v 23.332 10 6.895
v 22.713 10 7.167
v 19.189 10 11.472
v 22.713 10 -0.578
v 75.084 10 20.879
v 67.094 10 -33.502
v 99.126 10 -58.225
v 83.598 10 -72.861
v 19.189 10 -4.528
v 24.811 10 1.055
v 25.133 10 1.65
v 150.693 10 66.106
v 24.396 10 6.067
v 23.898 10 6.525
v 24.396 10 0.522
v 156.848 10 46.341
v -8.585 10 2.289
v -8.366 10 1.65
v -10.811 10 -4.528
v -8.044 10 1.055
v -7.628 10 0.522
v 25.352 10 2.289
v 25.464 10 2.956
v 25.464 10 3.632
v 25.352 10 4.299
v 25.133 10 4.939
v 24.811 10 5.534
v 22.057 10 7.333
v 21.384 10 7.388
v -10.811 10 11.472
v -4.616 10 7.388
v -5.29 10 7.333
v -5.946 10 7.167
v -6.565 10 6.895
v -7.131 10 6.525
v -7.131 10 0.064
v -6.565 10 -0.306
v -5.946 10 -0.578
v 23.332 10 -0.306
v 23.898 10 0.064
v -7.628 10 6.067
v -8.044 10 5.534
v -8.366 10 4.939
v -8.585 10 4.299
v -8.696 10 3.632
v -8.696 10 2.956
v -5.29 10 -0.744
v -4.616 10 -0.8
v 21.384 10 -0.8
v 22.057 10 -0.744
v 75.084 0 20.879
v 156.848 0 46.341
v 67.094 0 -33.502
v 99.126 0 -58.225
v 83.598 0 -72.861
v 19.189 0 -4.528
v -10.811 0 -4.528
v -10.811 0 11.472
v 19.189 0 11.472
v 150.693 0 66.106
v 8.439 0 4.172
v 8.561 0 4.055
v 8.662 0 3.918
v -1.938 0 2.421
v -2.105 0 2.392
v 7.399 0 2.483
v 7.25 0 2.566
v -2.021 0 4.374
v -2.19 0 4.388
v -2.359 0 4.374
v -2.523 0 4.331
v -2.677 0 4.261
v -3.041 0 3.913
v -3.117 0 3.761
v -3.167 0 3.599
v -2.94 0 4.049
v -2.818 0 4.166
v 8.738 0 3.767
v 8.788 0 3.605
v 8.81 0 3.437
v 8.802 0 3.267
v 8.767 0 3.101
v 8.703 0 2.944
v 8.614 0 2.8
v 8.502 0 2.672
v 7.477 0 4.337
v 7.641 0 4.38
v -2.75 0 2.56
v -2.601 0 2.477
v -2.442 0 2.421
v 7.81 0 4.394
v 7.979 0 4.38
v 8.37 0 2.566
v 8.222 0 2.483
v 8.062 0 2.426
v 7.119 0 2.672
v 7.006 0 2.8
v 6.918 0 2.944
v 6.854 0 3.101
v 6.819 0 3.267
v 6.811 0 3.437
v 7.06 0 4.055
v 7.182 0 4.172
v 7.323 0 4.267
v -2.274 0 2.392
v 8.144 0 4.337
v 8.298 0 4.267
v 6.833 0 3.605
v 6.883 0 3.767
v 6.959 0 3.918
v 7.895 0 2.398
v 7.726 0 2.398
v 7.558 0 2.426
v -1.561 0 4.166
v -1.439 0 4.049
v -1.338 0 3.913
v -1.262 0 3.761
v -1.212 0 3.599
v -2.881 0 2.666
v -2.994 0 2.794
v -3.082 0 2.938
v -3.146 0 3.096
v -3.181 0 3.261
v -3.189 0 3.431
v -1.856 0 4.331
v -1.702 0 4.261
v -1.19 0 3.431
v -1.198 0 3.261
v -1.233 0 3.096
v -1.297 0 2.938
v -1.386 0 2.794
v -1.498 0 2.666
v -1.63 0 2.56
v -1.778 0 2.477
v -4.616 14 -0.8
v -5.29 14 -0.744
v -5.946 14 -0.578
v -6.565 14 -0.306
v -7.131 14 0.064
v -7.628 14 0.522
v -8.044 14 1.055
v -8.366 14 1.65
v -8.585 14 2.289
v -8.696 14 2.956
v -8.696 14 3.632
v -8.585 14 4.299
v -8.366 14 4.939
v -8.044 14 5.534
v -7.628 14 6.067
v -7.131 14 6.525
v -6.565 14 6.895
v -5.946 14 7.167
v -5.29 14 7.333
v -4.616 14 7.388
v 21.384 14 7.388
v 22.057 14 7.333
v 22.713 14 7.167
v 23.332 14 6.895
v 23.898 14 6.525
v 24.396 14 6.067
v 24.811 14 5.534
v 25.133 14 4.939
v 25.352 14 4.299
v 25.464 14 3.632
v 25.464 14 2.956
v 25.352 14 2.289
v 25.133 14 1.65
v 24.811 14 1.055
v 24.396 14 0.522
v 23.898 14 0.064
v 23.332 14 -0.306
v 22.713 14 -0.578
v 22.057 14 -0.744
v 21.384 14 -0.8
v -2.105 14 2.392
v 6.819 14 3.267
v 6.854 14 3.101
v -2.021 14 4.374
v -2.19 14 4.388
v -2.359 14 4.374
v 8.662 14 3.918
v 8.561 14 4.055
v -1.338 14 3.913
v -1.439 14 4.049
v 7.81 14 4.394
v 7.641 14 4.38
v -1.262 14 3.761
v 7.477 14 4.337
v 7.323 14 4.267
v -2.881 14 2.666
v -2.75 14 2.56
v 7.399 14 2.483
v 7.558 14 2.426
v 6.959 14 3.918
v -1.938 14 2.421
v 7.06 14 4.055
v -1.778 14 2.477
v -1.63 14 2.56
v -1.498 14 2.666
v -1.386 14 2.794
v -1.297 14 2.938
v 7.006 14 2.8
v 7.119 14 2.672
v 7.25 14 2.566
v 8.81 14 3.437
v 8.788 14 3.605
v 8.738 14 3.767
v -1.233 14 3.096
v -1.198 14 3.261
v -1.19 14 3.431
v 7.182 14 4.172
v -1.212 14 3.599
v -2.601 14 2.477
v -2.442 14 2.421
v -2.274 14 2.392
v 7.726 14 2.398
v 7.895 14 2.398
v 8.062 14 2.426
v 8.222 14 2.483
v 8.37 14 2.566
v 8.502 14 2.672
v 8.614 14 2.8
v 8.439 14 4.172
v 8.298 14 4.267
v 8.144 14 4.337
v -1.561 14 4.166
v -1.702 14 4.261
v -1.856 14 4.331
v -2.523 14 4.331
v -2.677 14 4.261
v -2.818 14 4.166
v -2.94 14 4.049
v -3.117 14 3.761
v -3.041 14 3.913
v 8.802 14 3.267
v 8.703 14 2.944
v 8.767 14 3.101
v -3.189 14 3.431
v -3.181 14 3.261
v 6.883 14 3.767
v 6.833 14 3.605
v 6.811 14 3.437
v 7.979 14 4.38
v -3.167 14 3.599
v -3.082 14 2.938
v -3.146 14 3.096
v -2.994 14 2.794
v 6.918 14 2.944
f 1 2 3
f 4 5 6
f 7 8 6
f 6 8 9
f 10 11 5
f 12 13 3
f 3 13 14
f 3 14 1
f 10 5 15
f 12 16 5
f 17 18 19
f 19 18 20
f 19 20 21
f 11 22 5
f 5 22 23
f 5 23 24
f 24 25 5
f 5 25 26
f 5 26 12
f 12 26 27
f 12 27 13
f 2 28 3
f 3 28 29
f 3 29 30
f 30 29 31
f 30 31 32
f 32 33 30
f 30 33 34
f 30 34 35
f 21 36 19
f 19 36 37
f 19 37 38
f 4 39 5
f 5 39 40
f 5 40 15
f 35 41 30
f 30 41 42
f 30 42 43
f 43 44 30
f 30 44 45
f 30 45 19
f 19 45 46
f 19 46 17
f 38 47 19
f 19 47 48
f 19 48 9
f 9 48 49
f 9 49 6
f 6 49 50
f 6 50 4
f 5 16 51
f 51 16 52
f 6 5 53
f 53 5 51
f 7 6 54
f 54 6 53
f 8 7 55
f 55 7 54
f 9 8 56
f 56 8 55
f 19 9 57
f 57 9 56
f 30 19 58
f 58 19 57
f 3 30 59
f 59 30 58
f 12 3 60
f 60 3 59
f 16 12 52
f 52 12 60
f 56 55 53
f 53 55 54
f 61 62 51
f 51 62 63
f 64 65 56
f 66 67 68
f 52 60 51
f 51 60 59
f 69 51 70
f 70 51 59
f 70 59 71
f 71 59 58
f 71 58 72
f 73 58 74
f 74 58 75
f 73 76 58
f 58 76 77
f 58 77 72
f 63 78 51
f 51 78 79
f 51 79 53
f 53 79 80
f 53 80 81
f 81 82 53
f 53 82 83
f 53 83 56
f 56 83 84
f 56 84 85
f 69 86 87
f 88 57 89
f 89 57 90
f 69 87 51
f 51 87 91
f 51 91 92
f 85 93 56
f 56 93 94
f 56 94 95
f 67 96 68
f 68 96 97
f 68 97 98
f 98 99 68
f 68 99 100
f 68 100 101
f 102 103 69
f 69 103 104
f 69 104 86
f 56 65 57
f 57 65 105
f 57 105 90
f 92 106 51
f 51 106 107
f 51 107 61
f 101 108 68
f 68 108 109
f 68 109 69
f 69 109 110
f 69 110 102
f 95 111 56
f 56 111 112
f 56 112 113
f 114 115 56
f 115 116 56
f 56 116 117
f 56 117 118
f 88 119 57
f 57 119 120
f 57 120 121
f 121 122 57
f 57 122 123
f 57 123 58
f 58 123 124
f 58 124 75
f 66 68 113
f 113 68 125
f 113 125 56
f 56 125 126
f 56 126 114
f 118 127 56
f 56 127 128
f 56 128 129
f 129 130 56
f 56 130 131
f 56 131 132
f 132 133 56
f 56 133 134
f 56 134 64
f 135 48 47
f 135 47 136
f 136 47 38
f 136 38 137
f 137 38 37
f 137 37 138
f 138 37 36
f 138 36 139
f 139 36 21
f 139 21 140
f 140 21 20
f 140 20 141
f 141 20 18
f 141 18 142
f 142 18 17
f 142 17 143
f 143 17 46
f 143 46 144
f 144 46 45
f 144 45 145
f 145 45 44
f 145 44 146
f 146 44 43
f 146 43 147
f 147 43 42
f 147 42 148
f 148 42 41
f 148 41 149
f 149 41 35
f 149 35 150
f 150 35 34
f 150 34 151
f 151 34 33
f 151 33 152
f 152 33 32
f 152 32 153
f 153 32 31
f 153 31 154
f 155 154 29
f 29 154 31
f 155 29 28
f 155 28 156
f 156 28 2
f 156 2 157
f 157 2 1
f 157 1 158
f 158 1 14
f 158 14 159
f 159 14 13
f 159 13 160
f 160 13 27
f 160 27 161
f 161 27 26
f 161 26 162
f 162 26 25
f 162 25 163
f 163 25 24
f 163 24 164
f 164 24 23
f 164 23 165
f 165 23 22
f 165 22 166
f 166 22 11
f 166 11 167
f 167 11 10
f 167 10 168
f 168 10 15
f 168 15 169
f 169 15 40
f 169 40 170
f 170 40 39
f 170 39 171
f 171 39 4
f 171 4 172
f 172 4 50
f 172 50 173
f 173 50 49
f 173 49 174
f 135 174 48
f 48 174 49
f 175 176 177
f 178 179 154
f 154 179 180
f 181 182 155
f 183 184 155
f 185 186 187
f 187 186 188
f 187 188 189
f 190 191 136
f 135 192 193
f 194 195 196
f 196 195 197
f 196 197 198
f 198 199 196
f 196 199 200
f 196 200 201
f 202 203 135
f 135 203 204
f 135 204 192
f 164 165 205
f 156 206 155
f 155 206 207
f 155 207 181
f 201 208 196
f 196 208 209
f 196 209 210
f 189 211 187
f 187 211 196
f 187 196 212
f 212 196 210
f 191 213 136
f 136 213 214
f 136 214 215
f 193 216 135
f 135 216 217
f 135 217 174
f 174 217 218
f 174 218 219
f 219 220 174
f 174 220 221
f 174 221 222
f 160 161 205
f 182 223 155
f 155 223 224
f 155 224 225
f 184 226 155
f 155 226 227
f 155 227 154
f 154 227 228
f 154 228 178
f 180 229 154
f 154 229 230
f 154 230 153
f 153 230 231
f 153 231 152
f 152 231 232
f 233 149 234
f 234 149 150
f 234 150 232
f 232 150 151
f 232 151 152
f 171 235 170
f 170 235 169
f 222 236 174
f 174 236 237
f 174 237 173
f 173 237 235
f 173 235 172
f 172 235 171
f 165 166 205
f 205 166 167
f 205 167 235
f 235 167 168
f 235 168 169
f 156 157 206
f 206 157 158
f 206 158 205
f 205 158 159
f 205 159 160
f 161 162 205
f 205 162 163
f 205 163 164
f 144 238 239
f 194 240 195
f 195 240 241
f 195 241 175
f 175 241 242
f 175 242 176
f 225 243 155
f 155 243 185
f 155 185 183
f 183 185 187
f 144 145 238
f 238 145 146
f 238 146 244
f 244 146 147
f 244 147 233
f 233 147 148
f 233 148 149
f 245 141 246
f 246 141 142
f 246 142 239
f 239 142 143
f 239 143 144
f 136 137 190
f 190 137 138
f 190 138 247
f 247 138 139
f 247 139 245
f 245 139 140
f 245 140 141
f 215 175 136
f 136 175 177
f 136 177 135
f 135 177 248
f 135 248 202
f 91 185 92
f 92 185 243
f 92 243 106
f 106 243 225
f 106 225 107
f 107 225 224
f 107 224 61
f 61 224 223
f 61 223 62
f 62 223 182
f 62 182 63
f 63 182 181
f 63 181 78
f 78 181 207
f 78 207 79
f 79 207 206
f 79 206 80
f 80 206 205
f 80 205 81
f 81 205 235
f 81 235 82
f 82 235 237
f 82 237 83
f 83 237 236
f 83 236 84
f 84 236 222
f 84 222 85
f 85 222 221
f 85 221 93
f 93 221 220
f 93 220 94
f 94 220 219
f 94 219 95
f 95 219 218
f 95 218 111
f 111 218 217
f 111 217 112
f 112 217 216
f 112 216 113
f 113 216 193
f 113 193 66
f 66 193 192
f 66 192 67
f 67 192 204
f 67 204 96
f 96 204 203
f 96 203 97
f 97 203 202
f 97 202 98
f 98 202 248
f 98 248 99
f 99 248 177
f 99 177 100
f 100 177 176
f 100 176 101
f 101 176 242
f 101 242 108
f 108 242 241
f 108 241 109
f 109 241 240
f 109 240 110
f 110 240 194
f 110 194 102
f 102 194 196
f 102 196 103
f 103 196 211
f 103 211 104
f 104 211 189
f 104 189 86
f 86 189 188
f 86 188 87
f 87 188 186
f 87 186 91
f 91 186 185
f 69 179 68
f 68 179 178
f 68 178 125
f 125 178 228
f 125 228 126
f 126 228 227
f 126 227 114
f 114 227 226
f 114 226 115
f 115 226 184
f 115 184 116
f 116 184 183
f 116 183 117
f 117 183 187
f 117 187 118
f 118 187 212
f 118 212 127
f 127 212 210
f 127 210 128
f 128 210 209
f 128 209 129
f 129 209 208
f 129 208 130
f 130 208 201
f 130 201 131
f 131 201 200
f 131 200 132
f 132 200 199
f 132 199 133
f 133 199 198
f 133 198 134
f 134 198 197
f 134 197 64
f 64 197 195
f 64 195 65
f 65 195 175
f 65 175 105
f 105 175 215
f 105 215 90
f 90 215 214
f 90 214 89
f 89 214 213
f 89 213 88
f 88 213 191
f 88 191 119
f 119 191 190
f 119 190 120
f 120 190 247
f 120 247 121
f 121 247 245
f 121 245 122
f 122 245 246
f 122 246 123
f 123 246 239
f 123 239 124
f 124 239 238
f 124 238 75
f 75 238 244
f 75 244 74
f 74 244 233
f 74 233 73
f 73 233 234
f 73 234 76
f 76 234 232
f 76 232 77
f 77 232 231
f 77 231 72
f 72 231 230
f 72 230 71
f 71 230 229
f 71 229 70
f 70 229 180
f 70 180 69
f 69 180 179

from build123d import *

# Parameters (mm, degrees)
SKETCH1_W           = 30
SKETCH1_H           = 16
BOSS_EXTRUDE1_DEPTH = 10
BOSS_EXTRUDE2_DEPTH = 4
SKETCH3_R           = 1
CUT_EXTRUDE1_DEPTH  = 20


with BuildPart() as part:
    # Sketch1 → Boss-Extrude1 (new body)
    with BuildSketch(Plane(origin=(0, 0, 0), x_dir=(1, 0, 0), z_dir=(0, 1, 0))):
        Polygon((83.598365037, 72.861095688), (19.188679245, 4.528301887), (19.188679245, -3.471698113), (67.093699226, 33.50154619), (99.126439745, 58.224515545), align=None)
        Polygon((75.084307937, -20.878636135), (19.188679245, -3.471698113), (19.188679245, -11.471698113), (150.692912318, -66.106409411), (156.848103065, -46.341402143), align=None)
        with Locations((4.188679245, -3.471698113)):
            Rectangle(SKETCH1_W, SKETCH1_H)
        Polygon((67.093699226, 33.50154619), (19.188679245, -3.471698113), (75.084307937, -20.878636135), align=None)
    extrude(amount=BOSS_EXTRUDE1_DEPTH)

    # Sketch2 → Boss-Extrude2 (add)
    with BuildSketch(Plane(origin=(0, 10, 0), x_dir=(1, 0, 0), z_dir=(0, 1, 0))):
        with BuildLine():
            Line((-4.616424759, 0.799624641), (21.383575241, 0.799624641))
            ThreePointArc((21.383575241, 0.799624641), (25.477598736, -3.294398854), (21.383575241, -7.38842235))
            Line((21.383575241, -7.38842235), (-4.616424759, -7.38842235))
            ThreePointArc((-4.616424759, -7.38842235), (-8.710448255, -3.294398854), (-4.616424759, 0.799624641))
        make_face()
    extrude(amount=BOSS_EXTRUDE2_DEPTH)

    # Sketch3 → Cut-Extrude1 (cut)
    with BuildSketch(Plane(origin=(0, 14, 0), x_dir=(1, 0, 0), z_dir=(0, 1, 0))):
        with Locations(Location((-2.189535813, -3.38842235, 0), (0, 0, 270))):
            Circle(SKETCH3_R)
        with Locations(Location((7.810464187, -3.394168988, 0), (0, 0, 270))):
            Circle(SKETCH3_R)
    extrude(amount=-CUT_EXTRUDE1_DEPTH, mode=Mode.SUBTRACT)


solid = part.part
